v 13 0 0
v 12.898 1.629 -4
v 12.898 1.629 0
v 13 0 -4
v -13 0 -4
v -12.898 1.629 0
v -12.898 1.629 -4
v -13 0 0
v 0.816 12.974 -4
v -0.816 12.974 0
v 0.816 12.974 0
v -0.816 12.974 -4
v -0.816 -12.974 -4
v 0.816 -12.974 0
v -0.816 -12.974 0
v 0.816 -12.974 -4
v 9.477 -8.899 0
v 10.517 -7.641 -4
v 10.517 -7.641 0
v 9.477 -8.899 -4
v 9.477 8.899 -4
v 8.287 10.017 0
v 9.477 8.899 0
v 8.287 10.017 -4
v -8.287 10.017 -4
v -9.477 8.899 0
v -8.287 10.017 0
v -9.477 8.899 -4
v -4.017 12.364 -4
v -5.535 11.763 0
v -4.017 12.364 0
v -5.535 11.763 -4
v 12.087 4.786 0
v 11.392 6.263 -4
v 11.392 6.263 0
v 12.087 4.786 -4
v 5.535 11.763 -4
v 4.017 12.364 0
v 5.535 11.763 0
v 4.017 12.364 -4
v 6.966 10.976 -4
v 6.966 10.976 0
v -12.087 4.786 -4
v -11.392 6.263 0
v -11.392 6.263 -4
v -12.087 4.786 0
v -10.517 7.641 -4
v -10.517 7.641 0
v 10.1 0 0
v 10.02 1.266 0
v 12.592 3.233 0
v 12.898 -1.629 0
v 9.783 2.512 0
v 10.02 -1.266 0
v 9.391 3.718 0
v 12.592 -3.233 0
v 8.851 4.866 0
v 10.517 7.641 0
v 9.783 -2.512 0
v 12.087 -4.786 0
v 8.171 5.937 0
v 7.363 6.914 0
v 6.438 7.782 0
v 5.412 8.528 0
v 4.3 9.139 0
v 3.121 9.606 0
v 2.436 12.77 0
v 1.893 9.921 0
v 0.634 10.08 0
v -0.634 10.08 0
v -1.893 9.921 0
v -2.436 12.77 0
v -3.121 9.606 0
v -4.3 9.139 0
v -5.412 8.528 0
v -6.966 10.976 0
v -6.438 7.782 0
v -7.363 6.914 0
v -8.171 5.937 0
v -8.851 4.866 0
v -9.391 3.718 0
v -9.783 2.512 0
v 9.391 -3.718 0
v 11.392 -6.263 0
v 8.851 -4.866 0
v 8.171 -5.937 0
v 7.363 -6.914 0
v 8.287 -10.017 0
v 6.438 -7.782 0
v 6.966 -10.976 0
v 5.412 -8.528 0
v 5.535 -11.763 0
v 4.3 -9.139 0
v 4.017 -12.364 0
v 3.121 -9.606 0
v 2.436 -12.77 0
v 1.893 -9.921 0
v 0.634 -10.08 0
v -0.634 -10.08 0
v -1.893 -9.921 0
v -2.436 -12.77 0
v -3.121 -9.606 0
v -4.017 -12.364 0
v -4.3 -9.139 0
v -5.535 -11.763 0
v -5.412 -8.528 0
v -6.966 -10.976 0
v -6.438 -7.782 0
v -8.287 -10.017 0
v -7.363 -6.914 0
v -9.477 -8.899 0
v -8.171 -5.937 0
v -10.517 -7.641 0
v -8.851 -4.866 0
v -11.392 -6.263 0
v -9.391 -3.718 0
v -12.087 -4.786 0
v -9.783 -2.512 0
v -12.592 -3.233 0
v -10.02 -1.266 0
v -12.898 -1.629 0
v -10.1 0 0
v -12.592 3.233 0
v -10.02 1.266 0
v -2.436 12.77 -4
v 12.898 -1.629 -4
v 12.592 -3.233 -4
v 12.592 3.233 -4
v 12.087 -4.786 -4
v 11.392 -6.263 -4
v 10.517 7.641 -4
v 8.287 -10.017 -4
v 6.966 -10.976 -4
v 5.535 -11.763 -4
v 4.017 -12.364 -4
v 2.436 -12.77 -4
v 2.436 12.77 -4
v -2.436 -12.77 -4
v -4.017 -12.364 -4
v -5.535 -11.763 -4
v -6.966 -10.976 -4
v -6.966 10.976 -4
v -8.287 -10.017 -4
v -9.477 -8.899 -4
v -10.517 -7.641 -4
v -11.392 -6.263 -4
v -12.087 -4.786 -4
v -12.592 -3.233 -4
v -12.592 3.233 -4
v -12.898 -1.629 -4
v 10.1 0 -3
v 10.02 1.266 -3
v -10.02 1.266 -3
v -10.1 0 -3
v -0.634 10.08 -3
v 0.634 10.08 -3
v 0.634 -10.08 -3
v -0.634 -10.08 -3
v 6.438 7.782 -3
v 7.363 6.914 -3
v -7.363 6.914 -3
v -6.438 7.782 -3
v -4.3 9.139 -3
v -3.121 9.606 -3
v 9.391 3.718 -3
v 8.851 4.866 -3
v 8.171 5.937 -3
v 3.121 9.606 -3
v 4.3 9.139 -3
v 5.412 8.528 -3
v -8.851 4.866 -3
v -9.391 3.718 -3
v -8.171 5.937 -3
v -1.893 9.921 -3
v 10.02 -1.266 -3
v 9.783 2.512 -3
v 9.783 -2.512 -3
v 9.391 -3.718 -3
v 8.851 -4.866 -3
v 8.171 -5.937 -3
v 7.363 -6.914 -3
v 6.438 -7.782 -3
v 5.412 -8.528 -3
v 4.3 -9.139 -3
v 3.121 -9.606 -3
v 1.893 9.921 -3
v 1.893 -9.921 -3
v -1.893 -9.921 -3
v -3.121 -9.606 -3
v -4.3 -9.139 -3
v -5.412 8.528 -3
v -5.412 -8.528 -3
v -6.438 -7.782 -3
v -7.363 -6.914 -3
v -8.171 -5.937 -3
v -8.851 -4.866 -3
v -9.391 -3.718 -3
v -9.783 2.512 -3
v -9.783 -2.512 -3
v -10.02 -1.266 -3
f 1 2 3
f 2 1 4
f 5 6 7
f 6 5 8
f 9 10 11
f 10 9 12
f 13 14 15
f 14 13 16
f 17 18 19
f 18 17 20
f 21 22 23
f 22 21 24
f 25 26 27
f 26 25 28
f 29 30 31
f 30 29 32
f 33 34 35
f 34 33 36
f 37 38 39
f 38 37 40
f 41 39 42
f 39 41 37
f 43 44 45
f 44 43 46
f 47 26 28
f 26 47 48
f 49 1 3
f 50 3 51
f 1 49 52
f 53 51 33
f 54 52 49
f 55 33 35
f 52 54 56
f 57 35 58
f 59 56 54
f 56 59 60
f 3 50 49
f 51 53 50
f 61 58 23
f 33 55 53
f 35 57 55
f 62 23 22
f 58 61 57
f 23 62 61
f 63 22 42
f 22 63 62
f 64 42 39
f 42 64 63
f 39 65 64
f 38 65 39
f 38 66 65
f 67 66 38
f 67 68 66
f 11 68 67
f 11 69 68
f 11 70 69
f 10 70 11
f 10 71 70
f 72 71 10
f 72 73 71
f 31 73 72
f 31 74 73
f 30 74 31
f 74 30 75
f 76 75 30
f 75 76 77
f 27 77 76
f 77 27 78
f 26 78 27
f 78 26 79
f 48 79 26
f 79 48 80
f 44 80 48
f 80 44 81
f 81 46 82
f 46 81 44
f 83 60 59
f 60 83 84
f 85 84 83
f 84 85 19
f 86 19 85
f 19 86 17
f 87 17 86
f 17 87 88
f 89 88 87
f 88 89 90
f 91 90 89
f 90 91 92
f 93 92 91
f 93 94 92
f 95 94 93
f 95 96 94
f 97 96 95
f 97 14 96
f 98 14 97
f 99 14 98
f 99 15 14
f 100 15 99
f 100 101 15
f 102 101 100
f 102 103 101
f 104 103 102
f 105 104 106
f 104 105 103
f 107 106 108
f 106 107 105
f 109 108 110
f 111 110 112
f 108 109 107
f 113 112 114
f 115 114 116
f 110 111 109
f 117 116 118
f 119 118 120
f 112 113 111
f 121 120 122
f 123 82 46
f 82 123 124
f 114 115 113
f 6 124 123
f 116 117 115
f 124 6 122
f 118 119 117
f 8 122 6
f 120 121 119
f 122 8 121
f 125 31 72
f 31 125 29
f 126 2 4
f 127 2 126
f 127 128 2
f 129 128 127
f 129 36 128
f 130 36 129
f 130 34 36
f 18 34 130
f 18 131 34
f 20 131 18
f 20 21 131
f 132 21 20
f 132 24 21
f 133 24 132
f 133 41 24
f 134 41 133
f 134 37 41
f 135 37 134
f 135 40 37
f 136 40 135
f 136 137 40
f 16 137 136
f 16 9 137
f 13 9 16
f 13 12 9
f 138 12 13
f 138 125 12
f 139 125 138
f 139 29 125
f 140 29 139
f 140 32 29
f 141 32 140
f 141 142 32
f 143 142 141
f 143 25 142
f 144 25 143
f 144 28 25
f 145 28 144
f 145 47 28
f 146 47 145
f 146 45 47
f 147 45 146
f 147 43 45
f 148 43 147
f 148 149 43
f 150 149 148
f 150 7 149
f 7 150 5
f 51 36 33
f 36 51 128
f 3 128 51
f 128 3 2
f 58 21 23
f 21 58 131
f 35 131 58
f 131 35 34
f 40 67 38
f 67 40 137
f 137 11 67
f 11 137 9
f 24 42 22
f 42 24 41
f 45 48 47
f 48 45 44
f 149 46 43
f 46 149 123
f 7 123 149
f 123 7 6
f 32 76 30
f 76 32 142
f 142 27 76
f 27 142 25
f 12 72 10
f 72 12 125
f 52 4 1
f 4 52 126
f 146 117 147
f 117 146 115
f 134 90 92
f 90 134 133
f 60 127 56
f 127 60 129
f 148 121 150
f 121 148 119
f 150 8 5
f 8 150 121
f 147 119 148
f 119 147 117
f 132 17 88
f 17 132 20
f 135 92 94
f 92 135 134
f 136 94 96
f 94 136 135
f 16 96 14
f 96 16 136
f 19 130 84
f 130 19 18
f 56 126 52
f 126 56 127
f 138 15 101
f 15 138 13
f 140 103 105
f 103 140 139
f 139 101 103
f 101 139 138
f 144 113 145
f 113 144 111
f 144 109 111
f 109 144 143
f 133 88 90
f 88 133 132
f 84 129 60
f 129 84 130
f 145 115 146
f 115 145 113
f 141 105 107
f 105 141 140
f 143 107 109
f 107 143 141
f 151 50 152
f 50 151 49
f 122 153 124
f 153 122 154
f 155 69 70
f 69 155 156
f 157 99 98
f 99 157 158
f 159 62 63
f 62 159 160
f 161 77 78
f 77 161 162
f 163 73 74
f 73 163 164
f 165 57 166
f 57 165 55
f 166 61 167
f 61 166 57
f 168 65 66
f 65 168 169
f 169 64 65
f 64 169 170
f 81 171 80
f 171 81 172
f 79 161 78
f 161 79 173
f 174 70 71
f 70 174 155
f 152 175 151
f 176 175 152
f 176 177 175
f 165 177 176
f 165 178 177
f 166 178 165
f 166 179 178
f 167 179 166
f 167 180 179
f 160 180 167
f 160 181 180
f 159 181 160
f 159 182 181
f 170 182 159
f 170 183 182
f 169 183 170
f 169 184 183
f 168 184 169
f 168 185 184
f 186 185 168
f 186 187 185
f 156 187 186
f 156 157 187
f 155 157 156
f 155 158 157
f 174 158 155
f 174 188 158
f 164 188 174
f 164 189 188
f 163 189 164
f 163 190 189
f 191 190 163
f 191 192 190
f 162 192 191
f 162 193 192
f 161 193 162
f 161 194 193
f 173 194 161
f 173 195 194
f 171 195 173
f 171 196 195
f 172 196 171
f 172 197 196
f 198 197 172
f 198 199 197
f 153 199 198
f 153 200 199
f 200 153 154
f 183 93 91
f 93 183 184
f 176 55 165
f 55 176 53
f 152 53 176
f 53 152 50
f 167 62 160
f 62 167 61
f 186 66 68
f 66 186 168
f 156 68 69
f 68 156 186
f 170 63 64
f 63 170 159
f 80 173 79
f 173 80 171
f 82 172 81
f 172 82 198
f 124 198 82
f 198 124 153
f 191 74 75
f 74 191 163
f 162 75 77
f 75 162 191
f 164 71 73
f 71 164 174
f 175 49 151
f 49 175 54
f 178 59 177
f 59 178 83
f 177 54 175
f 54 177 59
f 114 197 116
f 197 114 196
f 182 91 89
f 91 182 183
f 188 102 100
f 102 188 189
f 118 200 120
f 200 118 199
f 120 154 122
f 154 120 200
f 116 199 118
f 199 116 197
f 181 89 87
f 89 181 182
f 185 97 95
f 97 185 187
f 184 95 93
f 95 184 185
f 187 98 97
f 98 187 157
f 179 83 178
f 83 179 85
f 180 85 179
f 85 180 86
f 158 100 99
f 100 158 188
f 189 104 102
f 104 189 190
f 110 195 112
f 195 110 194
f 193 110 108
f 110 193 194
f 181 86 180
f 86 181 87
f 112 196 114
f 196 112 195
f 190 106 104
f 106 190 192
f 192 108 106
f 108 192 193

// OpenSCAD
$fn = 50;


difference() {
	union() {
		translate(v = [0, 0, -4.0000000000]) {
			cylinder(h = 4, r = 13.0000000000);
		}
	}
	union() {
		#translate(v = [0, 0, -3.0000000000]) {
			cylinder(h = 3, r = 10.1000000000);
		}
	}
}
